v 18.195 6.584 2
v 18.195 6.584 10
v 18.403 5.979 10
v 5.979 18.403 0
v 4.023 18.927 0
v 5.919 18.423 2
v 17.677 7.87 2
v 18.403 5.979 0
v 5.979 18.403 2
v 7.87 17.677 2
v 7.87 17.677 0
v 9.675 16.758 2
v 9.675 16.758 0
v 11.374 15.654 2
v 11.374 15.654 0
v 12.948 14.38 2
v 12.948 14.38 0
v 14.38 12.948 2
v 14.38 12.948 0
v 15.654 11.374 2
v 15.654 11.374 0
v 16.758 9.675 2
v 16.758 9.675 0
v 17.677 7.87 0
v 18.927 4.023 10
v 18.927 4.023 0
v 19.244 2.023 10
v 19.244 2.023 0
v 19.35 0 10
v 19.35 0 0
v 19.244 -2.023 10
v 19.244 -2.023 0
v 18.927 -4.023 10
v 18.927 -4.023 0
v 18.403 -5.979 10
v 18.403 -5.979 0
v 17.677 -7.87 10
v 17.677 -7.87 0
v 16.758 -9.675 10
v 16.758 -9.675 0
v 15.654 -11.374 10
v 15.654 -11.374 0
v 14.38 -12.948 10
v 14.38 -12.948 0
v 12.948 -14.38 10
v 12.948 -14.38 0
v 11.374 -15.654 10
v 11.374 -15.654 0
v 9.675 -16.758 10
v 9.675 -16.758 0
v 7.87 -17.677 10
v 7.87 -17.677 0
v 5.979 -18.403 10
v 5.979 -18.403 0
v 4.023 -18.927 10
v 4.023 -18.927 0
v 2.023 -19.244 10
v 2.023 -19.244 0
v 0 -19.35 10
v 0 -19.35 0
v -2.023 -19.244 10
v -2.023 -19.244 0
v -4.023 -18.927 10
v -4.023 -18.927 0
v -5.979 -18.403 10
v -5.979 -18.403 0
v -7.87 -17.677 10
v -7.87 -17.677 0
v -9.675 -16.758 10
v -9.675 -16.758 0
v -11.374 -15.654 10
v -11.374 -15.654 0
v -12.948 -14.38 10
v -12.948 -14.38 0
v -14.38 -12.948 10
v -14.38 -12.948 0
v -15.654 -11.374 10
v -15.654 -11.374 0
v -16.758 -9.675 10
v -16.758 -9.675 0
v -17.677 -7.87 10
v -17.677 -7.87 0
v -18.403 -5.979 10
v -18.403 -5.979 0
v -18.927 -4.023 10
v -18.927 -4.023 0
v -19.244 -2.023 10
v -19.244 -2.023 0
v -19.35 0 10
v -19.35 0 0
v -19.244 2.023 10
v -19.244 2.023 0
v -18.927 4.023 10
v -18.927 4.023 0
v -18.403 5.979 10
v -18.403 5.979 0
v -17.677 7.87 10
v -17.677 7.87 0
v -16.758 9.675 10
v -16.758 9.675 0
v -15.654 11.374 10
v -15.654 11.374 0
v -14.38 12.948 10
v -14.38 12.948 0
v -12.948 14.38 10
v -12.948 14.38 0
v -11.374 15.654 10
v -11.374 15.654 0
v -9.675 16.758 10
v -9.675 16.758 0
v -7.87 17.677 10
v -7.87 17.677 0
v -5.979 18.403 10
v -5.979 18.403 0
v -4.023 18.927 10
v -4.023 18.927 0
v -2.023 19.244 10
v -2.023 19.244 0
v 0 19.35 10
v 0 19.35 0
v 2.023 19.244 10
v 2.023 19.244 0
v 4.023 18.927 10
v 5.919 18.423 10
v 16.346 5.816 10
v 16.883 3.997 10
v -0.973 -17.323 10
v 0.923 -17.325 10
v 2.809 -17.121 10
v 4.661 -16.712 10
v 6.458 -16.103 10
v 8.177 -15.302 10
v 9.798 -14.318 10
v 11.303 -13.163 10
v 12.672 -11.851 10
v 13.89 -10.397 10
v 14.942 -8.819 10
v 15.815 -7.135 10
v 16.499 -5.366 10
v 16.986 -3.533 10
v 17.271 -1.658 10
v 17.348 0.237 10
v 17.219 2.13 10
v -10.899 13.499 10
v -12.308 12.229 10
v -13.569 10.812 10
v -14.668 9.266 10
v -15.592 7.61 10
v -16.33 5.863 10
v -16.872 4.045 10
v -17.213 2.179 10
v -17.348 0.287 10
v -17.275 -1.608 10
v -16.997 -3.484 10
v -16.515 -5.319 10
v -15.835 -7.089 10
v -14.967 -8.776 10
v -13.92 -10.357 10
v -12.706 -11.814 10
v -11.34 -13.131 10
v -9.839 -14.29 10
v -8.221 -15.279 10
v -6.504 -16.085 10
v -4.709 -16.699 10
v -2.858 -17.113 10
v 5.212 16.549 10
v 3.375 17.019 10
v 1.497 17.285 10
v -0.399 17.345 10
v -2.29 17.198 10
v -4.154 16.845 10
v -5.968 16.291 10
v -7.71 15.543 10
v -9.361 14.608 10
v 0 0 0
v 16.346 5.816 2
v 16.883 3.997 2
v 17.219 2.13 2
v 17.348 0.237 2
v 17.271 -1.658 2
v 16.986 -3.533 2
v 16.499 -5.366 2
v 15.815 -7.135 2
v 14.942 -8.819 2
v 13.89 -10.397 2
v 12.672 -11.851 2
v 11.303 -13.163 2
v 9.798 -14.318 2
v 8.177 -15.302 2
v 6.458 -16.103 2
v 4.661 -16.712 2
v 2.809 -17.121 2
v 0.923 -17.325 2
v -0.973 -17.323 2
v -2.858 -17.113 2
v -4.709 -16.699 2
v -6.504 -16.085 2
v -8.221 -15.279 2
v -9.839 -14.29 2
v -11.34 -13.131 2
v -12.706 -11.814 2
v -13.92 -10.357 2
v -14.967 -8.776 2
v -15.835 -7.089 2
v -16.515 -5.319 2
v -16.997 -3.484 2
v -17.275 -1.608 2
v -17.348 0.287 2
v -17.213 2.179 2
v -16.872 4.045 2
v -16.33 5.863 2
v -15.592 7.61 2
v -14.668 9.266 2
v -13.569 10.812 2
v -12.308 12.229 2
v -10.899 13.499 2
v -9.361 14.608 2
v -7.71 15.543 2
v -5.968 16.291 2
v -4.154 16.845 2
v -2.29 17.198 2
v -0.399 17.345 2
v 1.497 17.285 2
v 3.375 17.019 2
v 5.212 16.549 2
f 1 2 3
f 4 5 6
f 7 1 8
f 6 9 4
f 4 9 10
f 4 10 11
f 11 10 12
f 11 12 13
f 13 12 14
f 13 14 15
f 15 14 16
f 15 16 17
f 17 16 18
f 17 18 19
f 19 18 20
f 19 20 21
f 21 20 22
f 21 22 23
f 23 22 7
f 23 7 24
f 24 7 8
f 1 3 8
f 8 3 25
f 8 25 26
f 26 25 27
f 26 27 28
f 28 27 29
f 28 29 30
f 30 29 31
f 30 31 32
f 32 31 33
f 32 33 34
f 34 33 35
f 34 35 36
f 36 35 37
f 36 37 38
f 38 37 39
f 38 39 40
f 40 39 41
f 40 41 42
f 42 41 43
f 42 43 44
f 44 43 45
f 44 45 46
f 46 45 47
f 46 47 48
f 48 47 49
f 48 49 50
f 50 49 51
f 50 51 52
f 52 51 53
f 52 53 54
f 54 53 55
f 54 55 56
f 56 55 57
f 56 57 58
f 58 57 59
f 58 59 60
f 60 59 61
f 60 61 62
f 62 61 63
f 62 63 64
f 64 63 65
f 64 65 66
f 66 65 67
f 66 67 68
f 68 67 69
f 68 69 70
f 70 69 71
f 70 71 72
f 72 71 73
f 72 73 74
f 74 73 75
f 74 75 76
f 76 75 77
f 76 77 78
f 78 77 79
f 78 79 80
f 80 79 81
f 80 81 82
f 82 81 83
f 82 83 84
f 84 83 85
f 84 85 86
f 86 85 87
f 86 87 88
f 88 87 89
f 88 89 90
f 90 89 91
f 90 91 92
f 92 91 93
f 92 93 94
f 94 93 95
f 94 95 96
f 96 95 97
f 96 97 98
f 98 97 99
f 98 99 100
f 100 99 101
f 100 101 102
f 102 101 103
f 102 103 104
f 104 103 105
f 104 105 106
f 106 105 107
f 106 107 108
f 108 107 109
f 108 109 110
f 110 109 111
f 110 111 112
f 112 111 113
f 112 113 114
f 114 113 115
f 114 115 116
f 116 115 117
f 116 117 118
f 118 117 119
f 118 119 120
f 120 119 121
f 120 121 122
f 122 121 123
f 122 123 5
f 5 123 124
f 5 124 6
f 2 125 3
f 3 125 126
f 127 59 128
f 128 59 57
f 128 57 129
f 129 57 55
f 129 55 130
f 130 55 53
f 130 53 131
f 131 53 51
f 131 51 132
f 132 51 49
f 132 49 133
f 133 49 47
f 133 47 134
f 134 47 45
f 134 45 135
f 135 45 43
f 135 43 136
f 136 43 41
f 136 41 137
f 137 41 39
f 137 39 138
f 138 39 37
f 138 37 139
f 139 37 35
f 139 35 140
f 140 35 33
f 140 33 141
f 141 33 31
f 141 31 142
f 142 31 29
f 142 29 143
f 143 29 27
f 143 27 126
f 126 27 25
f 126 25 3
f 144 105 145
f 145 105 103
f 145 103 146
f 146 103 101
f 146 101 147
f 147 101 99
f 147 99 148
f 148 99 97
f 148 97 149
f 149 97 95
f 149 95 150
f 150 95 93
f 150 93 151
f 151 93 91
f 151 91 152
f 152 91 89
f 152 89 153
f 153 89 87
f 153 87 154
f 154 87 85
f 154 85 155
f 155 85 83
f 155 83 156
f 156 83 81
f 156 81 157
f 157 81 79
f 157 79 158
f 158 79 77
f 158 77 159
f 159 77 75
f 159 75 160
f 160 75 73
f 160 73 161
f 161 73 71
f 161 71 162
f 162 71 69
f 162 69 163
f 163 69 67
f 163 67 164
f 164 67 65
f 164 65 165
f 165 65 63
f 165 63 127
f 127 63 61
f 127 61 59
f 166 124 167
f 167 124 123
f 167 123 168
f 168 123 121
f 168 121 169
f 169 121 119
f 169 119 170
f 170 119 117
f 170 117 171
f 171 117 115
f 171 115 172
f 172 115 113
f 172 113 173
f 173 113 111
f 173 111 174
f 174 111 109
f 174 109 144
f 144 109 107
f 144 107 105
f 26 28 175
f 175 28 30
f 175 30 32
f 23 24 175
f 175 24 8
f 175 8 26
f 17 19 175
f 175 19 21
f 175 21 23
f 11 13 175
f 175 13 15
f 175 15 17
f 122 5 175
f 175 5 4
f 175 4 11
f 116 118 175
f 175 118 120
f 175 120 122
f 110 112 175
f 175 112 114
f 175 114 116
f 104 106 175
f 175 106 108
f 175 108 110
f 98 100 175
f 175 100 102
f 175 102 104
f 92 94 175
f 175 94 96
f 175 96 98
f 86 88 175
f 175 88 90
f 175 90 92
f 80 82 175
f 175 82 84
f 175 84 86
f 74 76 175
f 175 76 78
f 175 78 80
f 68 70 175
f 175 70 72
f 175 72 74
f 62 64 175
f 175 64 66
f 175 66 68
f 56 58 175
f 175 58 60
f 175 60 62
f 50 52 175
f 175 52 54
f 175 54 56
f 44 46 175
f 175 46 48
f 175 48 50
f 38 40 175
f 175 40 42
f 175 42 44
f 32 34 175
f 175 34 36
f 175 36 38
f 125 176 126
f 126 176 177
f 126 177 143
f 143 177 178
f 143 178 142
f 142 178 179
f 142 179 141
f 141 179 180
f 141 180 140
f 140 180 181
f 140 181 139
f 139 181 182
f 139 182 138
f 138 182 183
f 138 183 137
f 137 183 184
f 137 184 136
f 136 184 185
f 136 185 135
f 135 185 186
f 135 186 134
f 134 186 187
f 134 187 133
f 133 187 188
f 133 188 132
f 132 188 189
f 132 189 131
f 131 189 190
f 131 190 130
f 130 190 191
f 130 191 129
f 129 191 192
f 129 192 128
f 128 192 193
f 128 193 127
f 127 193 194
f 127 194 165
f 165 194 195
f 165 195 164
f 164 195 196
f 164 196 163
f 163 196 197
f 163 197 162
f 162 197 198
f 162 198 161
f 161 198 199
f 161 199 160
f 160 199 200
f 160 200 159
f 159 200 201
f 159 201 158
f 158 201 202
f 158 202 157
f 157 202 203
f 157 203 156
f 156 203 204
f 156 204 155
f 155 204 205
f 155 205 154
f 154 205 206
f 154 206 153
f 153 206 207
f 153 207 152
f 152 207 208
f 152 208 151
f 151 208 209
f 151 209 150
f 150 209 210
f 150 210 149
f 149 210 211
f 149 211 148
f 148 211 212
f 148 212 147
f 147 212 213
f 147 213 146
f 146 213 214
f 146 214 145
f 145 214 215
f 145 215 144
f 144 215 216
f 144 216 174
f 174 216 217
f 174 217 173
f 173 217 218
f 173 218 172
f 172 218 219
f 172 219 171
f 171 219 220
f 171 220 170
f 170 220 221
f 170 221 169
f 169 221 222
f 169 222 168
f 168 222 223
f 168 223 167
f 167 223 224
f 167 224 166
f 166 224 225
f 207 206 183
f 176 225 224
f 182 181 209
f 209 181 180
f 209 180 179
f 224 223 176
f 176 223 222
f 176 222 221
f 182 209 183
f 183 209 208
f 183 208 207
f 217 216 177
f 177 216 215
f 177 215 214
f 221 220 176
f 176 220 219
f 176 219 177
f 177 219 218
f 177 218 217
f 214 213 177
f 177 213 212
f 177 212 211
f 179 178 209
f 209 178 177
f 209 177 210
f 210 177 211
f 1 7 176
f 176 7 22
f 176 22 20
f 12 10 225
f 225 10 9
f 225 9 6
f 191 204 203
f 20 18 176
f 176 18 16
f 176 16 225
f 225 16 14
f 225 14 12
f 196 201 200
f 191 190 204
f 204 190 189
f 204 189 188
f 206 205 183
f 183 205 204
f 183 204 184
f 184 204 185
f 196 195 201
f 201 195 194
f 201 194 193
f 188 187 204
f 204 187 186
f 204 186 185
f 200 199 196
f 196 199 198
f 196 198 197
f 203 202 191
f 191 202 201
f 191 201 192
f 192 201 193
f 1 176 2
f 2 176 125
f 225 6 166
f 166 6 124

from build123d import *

# Parameters (mm, degrees)
CROQUIS1_R              = 19.35
SALIENTE_EXTRUIR1_DEPTH = 10
VACIADO1_T              = -2
CORTAR_EXTRUIR1_DEPTH   = 8


with BuildPart() as part:
    # Croquis1 → Saliente-Extruir1 (new body)
    with BuildSketch(Plane.XY):
        Circle(CROQUIS1_R)
    extrude(amount=SALIENTE_EXTRUIR1_DEPTH)

    # Vaciado1
    vaciado1_openings = [part.faces().sort_by_distance(p)[0] for p in [
        (0, 0, 10),
    ]]
    offset(amount=VACIADO1_T, openings=vaciado1_openings, kind=Kind.INTERSECTION)

    # Croquis2 → Cortar-Extruir1 (cut)
    with BuildSketch(Plane.XY.offset(10)):
        with BuildLine():
            Line((5.91867852, 18.42258789), (5.212083976, 16.548615671))
            ThreePointArc((5.212083976, 16.548615671), (11.920626225, 12.366173509), (16.346311037, 5.815549456))
            Line((16.346311037, 5.815549456), (18.195253679, 6.584469877))
            ThreePointArc((18.195253679, 6.584469877), (13.903068898, 14.418007159), (5.91867852, 18.42258789))
        make_face()
    extrude(amount=-CORTAR_EXTRUIR1_DEPTH, mode=Mode.SUBTRACT)


solid = part.part
